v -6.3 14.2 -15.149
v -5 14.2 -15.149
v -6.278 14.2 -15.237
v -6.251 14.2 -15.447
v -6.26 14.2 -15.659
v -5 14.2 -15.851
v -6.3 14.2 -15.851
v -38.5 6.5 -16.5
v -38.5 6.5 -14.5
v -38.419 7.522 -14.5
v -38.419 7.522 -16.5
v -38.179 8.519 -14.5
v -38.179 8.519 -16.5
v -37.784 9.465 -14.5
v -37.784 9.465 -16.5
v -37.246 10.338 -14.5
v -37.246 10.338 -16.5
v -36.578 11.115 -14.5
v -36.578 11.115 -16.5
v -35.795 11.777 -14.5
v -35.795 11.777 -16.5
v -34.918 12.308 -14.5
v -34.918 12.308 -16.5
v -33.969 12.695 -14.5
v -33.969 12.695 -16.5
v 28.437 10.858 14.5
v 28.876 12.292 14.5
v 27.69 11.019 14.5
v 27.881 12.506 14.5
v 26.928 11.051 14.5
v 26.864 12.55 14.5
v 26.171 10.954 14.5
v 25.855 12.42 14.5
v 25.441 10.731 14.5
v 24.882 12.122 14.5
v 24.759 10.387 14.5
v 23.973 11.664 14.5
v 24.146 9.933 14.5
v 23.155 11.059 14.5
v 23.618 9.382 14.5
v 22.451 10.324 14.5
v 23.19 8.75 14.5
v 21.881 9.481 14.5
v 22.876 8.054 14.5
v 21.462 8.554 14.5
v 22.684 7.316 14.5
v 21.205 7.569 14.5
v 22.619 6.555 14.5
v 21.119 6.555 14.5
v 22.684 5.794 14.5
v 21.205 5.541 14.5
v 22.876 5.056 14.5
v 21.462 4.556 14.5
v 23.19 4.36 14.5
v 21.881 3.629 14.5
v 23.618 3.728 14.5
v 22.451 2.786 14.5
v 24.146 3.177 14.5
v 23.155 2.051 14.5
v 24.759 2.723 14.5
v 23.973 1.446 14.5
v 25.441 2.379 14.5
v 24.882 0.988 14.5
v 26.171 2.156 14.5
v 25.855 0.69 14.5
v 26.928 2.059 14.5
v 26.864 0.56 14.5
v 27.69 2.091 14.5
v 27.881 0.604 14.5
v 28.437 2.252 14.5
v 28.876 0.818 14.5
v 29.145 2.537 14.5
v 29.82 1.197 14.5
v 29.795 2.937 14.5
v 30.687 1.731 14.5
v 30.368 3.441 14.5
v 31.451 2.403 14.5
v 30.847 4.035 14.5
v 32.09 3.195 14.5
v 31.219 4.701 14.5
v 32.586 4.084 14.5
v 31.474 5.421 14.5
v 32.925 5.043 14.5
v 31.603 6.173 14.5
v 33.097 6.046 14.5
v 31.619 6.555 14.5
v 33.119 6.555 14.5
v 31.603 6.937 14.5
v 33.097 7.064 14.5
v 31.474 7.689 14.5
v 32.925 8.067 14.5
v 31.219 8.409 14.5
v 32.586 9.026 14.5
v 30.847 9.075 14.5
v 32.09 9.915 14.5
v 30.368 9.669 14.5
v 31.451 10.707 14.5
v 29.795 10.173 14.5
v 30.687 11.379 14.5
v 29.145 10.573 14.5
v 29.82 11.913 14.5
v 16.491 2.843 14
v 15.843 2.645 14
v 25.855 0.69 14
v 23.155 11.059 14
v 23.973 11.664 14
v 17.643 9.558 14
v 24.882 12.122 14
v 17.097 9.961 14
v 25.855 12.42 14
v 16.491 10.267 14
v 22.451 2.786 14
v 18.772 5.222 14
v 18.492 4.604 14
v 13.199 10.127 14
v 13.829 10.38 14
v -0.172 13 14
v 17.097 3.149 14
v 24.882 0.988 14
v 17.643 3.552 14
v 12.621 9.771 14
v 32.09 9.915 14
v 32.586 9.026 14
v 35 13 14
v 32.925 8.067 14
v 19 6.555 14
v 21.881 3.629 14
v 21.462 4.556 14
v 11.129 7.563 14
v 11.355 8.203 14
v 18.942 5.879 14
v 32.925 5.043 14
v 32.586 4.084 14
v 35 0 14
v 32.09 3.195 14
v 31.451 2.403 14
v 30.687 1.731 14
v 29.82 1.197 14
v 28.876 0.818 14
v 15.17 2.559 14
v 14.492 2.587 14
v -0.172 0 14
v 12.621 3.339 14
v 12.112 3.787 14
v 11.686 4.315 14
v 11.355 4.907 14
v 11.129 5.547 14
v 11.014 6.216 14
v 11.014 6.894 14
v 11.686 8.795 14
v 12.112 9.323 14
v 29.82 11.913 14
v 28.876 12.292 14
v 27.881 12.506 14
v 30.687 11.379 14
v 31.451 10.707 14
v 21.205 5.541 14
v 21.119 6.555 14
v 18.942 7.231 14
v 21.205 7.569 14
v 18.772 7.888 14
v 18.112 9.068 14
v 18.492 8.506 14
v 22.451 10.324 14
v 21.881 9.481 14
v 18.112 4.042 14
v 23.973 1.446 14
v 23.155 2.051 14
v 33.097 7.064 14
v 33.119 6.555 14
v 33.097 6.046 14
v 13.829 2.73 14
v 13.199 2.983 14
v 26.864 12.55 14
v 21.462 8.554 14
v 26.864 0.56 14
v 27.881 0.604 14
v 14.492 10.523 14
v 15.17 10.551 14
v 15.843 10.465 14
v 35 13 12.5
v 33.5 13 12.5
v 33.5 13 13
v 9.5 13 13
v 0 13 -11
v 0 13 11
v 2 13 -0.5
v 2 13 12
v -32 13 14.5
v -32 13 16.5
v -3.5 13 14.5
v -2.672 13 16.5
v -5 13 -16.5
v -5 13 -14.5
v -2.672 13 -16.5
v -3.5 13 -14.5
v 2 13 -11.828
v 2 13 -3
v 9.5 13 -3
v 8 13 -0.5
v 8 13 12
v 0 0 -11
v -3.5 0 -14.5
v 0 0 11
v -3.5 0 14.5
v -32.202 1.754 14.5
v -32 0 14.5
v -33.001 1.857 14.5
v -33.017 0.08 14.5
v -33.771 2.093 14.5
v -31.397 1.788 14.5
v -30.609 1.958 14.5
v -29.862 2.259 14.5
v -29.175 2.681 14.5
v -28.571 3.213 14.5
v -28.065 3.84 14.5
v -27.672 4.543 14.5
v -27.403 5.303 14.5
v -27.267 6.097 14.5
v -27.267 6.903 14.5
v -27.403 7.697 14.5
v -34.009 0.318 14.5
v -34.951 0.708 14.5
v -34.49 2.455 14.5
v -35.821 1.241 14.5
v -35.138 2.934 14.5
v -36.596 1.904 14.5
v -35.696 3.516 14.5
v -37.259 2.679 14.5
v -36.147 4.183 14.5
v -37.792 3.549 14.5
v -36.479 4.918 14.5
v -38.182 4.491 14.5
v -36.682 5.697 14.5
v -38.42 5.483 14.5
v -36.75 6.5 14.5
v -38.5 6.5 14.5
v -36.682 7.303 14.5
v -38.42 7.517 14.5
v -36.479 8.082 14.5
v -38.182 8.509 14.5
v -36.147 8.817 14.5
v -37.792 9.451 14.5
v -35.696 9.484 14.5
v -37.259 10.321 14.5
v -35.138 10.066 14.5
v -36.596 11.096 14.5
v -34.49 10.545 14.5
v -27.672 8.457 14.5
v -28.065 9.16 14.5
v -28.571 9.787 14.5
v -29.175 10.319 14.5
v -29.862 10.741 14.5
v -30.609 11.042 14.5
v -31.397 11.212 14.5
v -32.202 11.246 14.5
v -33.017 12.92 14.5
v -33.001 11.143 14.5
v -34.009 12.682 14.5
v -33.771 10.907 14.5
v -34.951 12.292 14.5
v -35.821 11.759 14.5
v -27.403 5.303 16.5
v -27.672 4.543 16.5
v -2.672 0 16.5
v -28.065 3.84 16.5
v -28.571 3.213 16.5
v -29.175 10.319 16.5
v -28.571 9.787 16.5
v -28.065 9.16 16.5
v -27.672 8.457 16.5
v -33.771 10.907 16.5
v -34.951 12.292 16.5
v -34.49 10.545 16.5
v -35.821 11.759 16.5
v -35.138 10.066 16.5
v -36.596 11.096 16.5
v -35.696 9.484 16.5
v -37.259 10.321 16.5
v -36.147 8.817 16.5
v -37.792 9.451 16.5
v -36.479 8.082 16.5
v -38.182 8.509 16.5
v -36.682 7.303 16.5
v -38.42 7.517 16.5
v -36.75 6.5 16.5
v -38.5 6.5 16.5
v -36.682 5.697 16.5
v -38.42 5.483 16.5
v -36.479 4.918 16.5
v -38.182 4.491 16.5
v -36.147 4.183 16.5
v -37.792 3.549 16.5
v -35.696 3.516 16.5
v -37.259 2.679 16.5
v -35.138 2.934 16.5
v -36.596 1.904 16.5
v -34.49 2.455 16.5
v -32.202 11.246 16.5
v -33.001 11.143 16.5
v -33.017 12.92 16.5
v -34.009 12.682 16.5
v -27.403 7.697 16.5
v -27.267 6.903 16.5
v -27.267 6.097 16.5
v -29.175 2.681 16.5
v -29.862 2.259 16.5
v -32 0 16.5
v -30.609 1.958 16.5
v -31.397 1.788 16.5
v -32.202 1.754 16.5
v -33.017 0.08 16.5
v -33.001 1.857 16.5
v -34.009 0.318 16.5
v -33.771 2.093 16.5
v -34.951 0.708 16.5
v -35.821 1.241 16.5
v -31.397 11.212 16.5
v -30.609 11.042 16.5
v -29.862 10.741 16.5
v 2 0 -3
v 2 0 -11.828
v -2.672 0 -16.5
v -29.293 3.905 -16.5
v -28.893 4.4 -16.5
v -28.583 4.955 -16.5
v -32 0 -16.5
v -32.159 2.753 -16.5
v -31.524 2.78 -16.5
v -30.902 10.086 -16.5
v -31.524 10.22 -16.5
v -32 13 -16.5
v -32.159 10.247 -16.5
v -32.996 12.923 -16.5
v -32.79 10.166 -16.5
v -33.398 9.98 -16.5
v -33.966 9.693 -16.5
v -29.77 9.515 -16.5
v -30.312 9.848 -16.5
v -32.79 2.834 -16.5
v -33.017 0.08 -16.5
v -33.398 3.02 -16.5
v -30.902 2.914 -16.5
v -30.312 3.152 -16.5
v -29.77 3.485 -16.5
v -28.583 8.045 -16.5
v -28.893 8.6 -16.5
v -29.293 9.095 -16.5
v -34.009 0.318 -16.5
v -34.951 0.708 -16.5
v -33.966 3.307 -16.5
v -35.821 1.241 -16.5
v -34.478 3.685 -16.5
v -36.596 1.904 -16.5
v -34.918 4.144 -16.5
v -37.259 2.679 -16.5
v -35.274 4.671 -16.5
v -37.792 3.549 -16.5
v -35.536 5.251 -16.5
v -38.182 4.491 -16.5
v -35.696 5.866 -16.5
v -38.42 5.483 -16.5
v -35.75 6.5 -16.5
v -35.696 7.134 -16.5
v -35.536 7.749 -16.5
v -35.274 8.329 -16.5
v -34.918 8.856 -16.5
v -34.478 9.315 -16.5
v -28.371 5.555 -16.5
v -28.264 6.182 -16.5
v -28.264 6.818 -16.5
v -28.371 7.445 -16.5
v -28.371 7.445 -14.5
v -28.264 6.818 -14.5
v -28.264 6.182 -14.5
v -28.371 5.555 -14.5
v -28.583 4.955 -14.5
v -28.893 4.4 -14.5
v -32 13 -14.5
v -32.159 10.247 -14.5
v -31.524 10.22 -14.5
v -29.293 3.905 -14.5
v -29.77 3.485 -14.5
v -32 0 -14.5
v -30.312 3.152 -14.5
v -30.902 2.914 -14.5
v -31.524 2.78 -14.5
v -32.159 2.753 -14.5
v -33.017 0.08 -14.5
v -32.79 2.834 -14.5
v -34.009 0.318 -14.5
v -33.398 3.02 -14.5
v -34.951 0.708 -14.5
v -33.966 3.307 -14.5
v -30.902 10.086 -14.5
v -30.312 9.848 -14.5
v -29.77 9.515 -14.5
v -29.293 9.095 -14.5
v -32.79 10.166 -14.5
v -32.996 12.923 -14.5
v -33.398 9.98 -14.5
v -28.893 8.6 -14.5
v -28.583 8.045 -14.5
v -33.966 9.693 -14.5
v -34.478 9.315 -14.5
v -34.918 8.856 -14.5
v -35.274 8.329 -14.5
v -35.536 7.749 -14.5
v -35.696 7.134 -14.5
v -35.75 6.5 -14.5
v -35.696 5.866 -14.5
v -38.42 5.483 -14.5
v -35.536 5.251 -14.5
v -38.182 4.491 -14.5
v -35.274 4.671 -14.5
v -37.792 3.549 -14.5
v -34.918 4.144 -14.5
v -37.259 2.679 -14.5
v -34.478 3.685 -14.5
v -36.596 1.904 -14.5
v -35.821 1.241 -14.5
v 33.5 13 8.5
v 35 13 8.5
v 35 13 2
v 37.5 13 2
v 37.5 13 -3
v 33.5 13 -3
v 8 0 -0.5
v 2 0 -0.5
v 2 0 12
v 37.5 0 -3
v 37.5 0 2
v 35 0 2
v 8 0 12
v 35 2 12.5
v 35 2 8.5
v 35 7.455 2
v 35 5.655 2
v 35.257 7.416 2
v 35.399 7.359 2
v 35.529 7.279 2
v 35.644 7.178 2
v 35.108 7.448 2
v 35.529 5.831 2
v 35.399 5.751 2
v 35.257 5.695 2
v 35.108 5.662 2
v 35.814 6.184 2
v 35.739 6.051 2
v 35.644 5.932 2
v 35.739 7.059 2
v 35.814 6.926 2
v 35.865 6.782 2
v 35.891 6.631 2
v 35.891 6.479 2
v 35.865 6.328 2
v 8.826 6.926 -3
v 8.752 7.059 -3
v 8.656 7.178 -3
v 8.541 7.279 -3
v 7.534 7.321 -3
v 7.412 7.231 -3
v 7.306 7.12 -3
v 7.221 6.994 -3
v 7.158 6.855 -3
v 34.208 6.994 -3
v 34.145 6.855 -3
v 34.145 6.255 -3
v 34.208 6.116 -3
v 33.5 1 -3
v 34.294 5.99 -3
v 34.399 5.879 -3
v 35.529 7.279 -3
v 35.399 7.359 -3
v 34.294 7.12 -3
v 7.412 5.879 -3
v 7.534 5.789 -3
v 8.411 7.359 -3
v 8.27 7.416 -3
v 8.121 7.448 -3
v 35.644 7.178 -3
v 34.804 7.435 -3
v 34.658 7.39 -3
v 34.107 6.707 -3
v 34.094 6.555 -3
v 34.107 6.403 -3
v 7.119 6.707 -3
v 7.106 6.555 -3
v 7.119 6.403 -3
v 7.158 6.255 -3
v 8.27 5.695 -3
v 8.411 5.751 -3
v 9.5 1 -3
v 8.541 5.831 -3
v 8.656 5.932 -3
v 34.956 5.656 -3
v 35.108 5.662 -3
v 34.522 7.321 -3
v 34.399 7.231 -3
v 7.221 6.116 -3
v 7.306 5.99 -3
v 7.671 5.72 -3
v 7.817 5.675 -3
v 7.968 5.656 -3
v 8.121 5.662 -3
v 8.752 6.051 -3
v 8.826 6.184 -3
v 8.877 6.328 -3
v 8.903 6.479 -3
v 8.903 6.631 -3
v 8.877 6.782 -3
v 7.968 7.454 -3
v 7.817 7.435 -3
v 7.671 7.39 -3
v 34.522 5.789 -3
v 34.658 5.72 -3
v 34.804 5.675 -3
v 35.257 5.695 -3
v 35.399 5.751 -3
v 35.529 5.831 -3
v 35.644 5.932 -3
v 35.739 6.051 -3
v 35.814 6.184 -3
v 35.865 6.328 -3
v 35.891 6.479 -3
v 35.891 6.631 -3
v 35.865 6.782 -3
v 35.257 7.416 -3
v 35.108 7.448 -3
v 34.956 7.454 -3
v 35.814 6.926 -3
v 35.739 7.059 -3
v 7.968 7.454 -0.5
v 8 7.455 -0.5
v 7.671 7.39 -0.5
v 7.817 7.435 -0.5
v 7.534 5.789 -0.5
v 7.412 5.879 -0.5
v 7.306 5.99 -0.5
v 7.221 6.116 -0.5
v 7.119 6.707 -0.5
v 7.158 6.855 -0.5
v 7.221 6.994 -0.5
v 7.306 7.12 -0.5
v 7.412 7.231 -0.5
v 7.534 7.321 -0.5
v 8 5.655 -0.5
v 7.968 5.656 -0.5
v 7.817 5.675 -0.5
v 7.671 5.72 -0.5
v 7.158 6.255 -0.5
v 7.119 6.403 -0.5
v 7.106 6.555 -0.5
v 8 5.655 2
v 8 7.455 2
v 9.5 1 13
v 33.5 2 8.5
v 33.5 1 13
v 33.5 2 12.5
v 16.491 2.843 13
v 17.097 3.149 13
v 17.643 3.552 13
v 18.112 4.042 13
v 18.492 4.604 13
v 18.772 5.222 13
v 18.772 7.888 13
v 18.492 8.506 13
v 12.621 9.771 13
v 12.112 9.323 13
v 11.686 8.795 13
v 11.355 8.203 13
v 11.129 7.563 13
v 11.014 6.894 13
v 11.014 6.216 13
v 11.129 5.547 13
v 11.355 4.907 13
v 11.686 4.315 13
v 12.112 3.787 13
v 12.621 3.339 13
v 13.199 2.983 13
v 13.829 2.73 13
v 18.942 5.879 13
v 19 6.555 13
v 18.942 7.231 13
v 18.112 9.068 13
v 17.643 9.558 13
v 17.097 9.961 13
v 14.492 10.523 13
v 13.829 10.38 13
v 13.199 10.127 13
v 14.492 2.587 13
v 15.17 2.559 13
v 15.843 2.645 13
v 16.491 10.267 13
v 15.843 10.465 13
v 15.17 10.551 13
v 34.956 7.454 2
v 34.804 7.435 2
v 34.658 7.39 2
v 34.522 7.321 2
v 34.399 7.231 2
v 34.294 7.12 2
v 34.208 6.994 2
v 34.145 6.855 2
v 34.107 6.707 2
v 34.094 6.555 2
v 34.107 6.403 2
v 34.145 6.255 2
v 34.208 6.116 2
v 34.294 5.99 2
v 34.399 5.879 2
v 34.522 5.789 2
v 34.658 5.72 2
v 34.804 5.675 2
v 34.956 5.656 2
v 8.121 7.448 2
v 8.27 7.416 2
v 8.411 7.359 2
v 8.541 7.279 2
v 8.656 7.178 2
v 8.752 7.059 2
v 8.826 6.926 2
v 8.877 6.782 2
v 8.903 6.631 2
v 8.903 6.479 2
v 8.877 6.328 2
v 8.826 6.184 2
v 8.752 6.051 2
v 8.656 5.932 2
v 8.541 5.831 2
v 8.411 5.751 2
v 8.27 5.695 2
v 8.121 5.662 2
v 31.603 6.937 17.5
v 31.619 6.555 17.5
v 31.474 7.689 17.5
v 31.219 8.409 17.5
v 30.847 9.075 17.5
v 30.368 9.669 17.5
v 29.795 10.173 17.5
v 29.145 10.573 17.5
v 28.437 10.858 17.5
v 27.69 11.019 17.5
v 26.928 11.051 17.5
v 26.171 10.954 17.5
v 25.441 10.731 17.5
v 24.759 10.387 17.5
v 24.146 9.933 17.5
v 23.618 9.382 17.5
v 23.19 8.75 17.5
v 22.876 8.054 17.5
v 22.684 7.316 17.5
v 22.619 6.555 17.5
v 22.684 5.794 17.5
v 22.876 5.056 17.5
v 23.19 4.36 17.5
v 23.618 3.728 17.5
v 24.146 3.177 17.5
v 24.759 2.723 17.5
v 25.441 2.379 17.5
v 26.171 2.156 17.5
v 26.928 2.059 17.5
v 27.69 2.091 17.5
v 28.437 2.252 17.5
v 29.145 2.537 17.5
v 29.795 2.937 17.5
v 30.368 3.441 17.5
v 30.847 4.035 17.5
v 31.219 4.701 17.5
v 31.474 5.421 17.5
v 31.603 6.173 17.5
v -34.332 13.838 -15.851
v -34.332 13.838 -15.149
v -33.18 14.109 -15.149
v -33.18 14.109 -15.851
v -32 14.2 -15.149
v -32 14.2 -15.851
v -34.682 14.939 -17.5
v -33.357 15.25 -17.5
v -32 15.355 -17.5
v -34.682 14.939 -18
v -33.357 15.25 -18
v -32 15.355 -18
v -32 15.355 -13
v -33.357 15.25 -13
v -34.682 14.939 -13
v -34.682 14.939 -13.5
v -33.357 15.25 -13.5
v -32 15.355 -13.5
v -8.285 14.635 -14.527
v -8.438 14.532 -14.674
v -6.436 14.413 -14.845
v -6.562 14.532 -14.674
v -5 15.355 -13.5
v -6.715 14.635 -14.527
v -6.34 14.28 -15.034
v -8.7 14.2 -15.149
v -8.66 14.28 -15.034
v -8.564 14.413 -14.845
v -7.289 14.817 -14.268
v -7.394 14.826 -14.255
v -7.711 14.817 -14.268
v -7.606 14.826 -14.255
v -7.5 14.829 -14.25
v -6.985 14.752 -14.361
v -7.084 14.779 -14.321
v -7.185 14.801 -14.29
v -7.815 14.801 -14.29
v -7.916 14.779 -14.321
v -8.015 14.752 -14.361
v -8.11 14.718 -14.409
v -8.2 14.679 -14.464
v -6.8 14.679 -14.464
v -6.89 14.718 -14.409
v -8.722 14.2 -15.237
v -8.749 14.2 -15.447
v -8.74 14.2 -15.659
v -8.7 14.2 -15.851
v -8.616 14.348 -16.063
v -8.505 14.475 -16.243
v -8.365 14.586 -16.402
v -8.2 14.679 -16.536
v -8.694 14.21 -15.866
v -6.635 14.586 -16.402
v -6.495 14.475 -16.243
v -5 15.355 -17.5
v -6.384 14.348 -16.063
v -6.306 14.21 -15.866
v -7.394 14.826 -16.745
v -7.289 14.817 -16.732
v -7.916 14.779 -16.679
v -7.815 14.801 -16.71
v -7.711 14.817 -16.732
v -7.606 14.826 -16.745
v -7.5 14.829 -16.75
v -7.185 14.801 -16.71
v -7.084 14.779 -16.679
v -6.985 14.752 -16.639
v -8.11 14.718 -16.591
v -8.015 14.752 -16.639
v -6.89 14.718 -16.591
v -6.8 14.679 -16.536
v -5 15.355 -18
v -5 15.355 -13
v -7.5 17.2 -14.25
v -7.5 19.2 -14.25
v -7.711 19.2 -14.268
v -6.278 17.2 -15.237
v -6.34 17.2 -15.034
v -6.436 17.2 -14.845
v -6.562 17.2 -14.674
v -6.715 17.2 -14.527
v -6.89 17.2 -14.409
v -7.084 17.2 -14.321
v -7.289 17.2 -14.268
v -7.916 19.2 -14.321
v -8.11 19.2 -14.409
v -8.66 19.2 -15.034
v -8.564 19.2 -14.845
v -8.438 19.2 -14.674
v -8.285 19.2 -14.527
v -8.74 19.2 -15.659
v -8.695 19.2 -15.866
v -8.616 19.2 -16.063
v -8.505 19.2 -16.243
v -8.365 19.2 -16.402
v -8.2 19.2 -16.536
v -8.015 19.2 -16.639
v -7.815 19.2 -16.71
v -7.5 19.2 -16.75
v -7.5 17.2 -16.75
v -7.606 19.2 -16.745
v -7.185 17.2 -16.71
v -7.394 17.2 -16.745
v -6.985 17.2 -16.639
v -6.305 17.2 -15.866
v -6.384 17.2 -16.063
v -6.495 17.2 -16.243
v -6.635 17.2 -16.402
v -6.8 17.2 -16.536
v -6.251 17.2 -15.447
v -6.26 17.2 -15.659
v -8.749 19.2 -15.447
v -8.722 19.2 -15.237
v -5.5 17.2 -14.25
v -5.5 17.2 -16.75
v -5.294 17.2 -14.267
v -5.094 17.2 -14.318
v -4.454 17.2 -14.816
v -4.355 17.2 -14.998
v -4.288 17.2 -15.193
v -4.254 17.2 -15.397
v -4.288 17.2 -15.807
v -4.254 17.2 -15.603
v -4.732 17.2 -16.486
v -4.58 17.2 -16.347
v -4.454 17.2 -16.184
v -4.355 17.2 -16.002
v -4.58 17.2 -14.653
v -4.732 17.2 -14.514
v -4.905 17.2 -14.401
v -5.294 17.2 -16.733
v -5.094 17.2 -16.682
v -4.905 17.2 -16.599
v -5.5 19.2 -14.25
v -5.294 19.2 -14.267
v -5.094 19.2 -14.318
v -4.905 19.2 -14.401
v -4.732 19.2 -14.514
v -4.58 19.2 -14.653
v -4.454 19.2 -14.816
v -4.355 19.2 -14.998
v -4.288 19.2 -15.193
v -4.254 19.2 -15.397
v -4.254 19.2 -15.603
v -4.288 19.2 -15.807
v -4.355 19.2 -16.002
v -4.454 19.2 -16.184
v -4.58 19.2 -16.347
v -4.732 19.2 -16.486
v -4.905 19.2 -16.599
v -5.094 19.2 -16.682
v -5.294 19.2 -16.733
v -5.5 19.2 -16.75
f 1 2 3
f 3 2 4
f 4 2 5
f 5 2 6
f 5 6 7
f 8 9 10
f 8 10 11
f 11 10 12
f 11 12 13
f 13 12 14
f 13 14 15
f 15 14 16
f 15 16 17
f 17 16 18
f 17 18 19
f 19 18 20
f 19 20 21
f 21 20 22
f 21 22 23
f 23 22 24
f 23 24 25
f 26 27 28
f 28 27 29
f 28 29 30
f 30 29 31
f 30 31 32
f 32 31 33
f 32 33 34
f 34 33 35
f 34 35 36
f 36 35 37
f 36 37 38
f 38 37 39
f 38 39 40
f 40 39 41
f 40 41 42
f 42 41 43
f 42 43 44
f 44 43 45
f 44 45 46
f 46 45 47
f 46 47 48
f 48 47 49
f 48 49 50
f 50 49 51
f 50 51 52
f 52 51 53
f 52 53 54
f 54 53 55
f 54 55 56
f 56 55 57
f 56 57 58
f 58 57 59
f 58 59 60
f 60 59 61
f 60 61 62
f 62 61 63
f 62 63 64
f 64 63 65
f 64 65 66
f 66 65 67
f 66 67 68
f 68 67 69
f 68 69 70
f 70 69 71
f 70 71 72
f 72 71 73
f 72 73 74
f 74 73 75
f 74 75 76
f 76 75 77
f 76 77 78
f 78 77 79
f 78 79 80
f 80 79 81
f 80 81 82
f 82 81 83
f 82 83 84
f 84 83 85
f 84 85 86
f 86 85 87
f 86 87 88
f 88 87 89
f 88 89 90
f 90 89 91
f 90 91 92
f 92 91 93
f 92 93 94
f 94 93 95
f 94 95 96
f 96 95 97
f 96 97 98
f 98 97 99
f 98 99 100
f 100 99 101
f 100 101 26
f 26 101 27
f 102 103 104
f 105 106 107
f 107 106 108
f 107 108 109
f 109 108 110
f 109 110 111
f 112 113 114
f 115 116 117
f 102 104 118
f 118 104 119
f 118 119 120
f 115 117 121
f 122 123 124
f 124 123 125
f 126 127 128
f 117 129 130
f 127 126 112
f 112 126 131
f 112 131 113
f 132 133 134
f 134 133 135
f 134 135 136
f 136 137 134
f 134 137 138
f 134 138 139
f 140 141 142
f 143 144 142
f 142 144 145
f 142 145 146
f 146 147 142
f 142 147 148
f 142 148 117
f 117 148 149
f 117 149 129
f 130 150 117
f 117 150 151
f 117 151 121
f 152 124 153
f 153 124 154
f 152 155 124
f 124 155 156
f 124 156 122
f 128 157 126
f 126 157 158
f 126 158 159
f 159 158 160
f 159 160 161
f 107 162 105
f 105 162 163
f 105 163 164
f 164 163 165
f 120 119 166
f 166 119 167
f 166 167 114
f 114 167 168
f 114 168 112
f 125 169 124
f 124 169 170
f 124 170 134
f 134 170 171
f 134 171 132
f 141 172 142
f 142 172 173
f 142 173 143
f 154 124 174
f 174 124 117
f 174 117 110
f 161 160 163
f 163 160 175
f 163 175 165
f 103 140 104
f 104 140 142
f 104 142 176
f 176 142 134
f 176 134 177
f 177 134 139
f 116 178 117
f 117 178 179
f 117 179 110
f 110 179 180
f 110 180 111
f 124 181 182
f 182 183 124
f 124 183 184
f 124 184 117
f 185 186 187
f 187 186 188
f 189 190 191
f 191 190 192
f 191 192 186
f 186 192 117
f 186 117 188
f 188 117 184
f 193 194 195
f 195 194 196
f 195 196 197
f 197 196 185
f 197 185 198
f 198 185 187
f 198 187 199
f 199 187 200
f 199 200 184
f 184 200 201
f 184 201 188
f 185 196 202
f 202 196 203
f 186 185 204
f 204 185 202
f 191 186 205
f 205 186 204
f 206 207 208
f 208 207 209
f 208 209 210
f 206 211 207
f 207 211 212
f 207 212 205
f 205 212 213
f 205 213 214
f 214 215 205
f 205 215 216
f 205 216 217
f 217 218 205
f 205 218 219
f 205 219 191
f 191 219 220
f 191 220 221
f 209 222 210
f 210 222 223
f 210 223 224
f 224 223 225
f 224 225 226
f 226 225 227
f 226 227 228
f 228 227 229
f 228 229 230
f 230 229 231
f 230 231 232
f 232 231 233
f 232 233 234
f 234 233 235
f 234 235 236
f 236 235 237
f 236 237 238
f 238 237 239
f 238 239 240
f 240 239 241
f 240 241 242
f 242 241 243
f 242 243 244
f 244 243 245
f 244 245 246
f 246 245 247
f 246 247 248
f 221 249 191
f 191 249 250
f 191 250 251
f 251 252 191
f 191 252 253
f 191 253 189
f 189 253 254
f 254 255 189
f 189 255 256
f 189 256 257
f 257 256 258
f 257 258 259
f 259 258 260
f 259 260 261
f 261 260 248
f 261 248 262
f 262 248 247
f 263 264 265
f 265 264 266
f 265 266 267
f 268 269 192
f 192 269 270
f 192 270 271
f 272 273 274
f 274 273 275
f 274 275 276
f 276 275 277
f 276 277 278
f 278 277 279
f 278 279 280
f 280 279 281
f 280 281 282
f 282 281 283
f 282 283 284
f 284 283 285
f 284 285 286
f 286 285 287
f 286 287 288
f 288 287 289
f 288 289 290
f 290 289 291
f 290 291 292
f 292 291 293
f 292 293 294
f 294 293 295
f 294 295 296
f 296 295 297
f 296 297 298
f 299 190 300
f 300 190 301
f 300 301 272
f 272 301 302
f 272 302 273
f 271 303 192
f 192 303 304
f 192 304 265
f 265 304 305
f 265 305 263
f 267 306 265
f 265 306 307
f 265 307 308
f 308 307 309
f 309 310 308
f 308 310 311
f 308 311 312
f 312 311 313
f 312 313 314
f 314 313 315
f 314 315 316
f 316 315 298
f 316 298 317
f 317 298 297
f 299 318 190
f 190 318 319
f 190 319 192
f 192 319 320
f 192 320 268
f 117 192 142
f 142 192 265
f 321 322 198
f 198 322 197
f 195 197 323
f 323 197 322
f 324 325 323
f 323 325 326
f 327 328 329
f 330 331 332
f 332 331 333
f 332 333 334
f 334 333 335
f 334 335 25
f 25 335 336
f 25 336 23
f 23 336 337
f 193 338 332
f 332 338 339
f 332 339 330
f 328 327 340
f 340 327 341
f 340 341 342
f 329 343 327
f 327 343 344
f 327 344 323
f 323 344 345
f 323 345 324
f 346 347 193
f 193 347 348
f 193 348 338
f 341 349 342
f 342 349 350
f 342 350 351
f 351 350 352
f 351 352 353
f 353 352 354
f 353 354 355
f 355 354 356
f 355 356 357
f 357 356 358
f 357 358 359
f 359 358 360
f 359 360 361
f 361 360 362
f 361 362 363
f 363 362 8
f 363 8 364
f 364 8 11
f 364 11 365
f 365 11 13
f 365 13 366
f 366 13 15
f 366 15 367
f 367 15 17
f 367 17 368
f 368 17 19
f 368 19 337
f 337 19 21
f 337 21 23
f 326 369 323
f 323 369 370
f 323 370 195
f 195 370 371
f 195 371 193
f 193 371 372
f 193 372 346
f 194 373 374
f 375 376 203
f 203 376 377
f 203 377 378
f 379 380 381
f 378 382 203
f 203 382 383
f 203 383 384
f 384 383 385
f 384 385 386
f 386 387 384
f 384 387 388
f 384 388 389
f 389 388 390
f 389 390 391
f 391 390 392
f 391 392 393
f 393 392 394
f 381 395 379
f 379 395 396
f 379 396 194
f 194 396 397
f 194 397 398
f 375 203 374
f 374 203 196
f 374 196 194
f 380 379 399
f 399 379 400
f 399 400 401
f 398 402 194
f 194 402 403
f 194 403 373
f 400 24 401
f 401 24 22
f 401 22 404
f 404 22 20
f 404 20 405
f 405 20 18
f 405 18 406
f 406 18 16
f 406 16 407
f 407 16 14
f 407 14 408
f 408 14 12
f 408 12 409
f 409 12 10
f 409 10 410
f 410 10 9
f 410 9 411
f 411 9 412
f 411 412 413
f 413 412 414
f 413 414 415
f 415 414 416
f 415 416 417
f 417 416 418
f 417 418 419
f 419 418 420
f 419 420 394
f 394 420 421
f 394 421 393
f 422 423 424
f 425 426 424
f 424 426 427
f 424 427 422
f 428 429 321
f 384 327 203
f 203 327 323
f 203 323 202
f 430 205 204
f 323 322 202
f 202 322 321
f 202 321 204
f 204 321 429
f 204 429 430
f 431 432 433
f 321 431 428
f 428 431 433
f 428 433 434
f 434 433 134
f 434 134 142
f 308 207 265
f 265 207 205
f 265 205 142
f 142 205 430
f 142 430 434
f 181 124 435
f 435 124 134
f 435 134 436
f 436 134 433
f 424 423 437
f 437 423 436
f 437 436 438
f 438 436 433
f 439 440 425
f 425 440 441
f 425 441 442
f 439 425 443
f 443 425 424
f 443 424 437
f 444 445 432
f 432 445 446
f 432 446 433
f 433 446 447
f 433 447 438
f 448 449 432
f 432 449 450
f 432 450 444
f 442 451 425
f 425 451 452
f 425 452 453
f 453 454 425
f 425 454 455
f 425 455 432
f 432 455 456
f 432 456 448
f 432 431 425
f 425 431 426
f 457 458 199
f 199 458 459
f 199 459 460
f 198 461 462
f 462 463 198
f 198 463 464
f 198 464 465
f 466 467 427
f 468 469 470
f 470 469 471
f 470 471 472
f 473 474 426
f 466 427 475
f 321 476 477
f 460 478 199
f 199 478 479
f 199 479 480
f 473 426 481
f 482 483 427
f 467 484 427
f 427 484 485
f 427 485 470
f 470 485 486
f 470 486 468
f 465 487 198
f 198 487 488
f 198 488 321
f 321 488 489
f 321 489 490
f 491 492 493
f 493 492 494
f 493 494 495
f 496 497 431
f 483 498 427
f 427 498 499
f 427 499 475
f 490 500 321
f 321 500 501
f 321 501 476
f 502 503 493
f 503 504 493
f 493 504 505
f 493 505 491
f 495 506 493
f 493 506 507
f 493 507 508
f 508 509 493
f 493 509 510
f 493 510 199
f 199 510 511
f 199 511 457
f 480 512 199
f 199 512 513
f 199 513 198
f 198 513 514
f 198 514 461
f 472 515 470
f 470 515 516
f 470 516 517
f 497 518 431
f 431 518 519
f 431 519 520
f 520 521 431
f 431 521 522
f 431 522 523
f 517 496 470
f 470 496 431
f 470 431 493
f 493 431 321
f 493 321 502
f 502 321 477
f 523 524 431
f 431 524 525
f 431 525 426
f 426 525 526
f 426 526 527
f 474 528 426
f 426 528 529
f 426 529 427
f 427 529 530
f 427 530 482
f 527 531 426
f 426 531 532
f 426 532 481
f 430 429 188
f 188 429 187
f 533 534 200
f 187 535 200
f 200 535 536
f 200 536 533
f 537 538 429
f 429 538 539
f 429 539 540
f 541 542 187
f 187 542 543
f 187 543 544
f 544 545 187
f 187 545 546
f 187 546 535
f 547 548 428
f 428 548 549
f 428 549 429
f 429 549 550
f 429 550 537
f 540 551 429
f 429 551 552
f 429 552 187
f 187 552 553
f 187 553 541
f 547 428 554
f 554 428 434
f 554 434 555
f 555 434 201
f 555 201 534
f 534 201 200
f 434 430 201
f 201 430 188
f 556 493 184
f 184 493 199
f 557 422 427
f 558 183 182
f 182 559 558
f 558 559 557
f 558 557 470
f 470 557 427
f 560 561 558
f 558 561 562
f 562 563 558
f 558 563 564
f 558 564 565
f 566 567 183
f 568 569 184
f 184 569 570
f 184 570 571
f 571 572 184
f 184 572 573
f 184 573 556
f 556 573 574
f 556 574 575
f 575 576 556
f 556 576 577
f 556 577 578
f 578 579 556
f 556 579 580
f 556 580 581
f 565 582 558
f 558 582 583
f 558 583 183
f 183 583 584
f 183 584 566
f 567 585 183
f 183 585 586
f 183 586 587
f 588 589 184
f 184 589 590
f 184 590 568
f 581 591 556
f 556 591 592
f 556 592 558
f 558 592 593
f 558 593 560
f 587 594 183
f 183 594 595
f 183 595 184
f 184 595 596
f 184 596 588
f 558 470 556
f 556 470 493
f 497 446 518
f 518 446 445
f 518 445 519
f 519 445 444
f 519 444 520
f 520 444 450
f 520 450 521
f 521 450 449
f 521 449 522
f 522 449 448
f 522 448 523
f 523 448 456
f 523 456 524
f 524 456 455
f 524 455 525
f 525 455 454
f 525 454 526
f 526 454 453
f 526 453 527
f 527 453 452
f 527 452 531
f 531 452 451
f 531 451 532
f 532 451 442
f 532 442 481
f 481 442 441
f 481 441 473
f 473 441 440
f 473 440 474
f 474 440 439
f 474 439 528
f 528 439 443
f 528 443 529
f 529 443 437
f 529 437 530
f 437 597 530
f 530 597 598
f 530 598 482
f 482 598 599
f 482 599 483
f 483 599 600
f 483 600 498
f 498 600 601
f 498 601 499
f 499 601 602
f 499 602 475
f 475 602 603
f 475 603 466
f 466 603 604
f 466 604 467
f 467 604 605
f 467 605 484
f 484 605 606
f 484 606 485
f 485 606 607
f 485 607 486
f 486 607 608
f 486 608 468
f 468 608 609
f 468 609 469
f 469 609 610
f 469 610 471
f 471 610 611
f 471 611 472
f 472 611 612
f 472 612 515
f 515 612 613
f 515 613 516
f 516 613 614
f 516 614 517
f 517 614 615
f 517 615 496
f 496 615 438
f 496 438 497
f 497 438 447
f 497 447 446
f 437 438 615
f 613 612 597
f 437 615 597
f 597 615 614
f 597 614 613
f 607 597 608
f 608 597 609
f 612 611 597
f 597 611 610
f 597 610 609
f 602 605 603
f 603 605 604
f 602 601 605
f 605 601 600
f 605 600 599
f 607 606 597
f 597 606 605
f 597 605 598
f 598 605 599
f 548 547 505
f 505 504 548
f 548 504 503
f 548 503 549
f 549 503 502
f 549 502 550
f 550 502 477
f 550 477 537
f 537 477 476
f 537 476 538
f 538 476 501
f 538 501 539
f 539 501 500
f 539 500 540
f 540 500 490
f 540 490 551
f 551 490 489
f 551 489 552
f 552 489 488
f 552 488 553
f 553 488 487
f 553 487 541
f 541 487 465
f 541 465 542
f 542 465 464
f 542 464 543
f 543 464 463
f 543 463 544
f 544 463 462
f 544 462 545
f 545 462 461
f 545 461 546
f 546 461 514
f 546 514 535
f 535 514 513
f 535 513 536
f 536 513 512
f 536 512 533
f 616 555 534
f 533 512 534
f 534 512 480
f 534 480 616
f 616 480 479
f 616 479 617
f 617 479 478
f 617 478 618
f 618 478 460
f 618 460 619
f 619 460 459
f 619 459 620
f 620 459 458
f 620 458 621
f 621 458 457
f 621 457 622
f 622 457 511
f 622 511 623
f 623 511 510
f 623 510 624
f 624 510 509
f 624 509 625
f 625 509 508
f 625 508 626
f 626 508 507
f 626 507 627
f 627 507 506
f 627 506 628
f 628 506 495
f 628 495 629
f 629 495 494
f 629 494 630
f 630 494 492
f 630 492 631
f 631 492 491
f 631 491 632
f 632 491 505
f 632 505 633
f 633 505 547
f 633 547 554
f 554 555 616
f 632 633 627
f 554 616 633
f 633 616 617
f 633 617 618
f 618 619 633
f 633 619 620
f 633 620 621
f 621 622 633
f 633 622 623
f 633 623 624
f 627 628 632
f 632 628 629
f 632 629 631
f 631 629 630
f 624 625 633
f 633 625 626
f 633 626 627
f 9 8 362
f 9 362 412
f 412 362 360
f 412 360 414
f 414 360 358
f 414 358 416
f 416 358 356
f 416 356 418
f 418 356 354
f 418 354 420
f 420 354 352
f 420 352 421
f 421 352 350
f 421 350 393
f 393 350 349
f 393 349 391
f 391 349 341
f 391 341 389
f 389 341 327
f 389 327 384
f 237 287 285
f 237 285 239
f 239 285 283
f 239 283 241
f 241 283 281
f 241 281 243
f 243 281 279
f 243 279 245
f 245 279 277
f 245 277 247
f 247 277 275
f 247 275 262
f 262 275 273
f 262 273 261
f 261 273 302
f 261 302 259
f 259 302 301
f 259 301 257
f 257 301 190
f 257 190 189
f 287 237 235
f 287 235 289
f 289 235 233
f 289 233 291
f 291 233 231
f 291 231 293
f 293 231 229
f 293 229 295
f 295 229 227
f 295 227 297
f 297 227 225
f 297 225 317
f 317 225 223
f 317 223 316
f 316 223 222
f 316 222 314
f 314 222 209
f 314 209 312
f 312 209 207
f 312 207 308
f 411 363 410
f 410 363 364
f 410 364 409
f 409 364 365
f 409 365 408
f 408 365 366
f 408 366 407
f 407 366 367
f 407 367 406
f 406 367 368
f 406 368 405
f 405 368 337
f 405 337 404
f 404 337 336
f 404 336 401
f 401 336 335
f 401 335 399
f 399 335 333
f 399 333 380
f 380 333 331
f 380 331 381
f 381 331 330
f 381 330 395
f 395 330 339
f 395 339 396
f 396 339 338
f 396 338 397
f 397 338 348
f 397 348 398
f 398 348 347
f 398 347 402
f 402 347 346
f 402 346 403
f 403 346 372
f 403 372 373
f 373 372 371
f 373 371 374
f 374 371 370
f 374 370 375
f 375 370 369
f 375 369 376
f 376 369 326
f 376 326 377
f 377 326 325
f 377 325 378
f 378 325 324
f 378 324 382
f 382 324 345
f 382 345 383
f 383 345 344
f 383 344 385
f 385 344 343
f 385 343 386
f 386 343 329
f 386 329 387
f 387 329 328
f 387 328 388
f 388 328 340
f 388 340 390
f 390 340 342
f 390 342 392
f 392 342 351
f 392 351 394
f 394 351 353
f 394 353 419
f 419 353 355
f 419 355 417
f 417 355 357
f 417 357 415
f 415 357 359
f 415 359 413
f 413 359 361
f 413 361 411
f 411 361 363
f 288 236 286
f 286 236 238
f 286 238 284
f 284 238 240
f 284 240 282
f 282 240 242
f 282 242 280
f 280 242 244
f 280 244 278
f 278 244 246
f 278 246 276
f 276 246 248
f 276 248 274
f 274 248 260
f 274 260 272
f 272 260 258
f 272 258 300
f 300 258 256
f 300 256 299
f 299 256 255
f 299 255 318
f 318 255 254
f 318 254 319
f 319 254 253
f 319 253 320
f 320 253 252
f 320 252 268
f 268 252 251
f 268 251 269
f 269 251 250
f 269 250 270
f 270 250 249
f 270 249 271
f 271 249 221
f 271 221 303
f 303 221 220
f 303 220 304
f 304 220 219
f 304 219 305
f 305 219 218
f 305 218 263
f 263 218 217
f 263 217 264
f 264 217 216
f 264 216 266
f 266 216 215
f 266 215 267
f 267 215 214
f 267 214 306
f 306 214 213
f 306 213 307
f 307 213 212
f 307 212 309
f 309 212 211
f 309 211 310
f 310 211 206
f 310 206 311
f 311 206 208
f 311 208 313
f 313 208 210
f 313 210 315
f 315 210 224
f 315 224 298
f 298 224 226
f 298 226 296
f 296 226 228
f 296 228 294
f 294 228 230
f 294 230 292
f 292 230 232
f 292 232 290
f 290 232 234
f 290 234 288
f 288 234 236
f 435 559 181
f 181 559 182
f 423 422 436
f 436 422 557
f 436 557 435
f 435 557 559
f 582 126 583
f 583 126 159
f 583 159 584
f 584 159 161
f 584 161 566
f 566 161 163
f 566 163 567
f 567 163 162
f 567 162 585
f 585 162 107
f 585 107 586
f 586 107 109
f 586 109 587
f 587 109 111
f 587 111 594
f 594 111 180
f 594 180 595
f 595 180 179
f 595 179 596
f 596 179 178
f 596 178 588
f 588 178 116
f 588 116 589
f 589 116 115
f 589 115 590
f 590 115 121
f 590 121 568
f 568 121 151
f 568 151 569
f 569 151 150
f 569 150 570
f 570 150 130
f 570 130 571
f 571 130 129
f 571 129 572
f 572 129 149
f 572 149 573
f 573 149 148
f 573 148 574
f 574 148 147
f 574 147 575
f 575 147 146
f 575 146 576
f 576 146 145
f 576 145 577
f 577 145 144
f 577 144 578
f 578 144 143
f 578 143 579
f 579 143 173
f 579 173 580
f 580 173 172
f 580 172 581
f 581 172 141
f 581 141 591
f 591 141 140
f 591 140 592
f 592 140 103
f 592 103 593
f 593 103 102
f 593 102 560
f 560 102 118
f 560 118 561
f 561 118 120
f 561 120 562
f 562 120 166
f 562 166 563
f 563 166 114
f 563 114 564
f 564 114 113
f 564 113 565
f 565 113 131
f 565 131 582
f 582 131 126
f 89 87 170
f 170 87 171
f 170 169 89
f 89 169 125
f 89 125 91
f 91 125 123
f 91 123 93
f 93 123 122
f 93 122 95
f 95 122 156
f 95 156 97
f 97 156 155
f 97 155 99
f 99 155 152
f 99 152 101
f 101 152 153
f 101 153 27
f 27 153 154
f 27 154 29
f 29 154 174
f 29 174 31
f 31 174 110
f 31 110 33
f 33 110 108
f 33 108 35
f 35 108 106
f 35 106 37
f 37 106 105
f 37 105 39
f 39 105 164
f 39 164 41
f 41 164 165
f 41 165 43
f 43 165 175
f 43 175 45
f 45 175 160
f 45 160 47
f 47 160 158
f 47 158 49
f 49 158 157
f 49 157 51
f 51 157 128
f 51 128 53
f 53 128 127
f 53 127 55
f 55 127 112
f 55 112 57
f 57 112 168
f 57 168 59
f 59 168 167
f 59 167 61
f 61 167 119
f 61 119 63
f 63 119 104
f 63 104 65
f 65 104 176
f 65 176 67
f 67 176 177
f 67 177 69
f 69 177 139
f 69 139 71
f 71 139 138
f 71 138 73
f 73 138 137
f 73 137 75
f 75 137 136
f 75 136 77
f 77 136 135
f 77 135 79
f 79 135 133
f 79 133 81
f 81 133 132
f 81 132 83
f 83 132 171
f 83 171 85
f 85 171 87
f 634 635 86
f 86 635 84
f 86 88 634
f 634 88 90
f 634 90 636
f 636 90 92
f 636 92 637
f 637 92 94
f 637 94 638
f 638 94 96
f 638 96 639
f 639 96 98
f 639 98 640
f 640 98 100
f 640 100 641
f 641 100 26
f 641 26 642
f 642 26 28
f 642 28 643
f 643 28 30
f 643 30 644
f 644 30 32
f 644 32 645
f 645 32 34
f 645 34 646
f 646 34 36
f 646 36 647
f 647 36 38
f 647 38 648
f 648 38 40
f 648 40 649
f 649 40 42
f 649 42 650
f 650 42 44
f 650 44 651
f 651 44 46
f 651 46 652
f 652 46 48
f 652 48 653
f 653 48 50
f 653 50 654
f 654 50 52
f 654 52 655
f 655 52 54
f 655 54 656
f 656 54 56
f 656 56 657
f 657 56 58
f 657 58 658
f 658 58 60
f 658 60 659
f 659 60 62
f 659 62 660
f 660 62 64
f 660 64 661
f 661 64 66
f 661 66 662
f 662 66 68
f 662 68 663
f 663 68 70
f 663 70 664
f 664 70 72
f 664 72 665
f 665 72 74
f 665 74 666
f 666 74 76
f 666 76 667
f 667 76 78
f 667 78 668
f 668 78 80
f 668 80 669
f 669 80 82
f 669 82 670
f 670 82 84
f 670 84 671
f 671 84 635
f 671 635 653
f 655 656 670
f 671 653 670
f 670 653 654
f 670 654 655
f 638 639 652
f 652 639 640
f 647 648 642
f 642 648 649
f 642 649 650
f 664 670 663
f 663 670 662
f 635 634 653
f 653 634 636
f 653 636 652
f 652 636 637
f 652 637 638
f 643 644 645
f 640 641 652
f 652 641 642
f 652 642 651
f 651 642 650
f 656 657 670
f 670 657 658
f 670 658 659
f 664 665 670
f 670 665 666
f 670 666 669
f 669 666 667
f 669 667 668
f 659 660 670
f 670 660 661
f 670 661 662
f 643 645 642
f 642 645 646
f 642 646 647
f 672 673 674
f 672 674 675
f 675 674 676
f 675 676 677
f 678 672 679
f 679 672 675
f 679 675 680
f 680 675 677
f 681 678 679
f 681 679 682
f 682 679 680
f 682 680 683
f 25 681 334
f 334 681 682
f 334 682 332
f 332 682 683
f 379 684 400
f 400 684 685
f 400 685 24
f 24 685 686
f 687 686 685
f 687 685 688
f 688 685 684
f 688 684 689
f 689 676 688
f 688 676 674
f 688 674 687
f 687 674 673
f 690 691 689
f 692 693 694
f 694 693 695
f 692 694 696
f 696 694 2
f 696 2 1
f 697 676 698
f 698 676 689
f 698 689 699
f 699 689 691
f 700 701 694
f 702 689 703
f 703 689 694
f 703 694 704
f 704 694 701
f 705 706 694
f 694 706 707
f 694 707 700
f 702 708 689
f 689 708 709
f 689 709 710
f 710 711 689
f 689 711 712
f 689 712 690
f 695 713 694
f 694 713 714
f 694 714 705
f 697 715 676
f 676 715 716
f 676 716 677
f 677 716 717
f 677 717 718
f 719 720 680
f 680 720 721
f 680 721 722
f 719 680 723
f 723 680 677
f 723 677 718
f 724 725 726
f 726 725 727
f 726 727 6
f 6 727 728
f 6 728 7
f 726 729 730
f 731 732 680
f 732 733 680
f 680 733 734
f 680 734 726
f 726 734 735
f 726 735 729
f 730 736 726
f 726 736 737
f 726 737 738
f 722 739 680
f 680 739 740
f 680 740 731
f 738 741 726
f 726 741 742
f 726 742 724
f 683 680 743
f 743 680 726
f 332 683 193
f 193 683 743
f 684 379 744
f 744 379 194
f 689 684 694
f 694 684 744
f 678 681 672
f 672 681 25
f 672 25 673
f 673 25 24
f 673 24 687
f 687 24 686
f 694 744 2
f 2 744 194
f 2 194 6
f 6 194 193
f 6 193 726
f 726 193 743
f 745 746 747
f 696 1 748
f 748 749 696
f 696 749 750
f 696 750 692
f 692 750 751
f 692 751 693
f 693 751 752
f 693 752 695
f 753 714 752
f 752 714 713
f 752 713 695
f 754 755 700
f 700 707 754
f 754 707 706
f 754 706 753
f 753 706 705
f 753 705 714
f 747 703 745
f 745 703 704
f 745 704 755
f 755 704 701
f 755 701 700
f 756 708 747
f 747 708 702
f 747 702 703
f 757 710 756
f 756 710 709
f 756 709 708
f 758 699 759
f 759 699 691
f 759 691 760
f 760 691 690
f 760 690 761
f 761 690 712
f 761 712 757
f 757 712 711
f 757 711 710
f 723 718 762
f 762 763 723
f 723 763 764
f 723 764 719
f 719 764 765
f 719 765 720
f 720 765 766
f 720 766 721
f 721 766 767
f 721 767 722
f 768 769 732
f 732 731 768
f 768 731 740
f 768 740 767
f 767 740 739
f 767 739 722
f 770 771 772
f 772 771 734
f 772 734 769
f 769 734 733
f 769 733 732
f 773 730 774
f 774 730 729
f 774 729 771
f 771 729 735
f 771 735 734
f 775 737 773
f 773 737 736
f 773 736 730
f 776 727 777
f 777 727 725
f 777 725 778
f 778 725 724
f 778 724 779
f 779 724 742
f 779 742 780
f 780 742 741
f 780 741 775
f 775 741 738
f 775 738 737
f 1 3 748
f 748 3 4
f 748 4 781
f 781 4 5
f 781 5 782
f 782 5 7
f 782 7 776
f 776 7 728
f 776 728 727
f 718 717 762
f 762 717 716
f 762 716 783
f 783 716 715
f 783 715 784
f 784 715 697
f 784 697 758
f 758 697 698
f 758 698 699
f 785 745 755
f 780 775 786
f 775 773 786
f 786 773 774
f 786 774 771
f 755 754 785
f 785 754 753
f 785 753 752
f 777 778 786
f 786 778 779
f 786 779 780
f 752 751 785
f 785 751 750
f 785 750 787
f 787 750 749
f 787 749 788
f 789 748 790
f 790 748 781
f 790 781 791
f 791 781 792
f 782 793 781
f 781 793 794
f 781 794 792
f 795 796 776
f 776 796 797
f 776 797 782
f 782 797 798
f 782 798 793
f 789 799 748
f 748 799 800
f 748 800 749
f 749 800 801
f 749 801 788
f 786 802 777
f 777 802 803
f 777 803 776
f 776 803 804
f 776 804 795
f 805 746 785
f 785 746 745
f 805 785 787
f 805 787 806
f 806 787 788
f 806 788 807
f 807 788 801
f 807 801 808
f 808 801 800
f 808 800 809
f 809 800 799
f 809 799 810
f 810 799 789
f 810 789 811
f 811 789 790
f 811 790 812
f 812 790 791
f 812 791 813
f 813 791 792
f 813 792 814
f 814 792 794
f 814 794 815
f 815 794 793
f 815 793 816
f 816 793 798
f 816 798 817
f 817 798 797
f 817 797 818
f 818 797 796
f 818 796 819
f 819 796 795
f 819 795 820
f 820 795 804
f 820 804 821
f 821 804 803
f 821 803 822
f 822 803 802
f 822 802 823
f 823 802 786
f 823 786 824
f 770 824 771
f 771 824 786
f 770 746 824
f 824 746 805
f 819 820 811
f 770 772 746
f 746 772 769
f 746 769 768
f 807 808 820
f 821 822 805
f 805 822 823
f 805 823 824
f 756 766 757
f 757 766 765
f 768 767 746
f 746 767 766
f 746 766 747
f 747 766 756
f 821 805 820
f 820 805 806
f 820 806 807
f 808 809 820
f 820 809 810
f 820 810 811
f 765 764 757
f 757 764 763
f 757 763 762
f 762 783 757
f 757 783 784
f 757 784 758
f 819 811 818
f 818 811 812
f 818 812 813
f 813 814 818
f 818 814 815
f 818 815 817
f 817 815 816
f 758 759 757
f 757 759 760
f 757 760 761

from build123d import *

# Parameters (mm, degrees)
P_IDAT_VYSUNUT_M1_DEPTH  = 13
P_IDAT_VYSUNUT_M2_DEPTH  = 13
SKICA3_W                 = 6
SKICA3_H                 = 12.5
ODEBRAT_VYSUNUT_M1_DEPTH = 44.857724519
SKICA4_W                 = 24
SKICA4_H                 = 16
ODEBRAT_VYSUNUT_M2_DEPTH = 12
SKICA5_R                 = 0.9
ODEBRAT_VYSUNUT_M3_DEPTH = 5
ZAOBLIT1_R               = 6.5
SKICA6_R                 = 3.75
ODEBRAT_VYSUNUT_M4_DEPTH = 5
SKICA7_R                 = 4.75
ODEBRAT_VYSUNUT_M5_DEPTH = 5
SKICA8_W                 = 4
SKICA8_H                 = 11
ODEBRAT_VYSUNUT_M6_DEPTH = 5
SKICA9_R                 = 4
ODEBRAT_VYSUNUT_M7_DEPTH = 10
SKICA10_R                = 6
P_IDAT_VYSUNUT_M3_DEPTH  = 0.5
SKICA11_R                = 4.5
P_IDAT_VYSUNUT_M4_DEPTH  = 3
P_IDAT_VYSUNUT_M5_REACH  = 49.809
P_IDAT_START             = 3
SKICA15_R                = 1.25
P_IDAT_START_2           = 2
P_IDAT_VYSUNUT_M6_DEPTH  = 2


with BuildPart() as part:
    # Skica1 → Přidat vysunutím1 (new body)
    with BuildSketch(Plane(origin=(0, 0, 0), x_dir=(1, 0, 0), z_dir=(0, 1, 0))):
        Polygon((0, -11), (0, 11), (-3.5, 14.5), (-38.5, 14.5), (-38.5, 16.5), (-2.671572875, 16.5), (2, 11.828427125), (2, -11.828427125), (-2.671572875, -16.5), (-38.5, -16.5), (-38.5, -14.5), (-3.5, -14.5), align=None)
    extrude(amount=P_IDAT_VYSUNUT_M1_DEPTH)

    # Skica2 → Přidat vysunutím2 (add)
    with BuildSketch(Plane.XZ):
        Polygon((-0.171572875, 14), (35, 14), (35, 2), (37.5, 2), (37.5, -3), (2, -3), (2, 11.828427125), align=None)
    extrude(amount=-P_IDAT_VYSUNUT_M2_DEPTH)

    # Skica3 → Odebrat vysunutím1 (cut, through all)
    with BuildSketch(Plane(origin=(0, 13, 0), x_dir=(1, 0, 0), z_dir=(0, 1, 0))):
        with Locations((5, -5.75)):
            Rectangle(SKICA3_W, SKICA3_H)
    extrude(amount=-ODEBRAT_VYSUNUT_M1_DEPTH, mode=Mode.SUBTRACT)

    # Skica4 → Odebrat vysunutím2 (cut)
    with BuildSketch(Plane(origin=(0, 13, 0), x_dir=(1, 0, 0), z_dir=(0, 1, 0))):
        with Locations((21.5, -5)):
            Rectangle(SKICA4_W, SKICA4_H)
    extrude(amount=-ODEBRAT_VYSUNUT_M2_DEPTH, mode=Mode.SUBTRACT)

    # Skica5 → Odebrat vysunutím3 (cut)
    with BuildSketch(Plane(origin=(0, 0, -3), x_dir=(-1, 0, 0), z_dir=(0, 0, -1))):
        with Locations((-34.993787626, 6.555058734)):
            Circle(SKICA5_R)
        with Locations((-8.006314188, 6.5550616)):
            Circle(SKICA5_R)
    extrude(amount=-ODEBRAT_VYSUNUT_M3_DEPTH, mode=Mode.SUBTRACT)

    # Zaoblit1
    zaoblit1_edges = [part.edges().sort_by_distance(p)[0] for p in [
        (-38.5, 0, -15.5),
        (-38.5, 13, -15.5),
        (-38.5, 0, 15.5),
        (-38.5, 13, 15.5),
    ]]
    fillet(zaoblit1_edges, radius=ZAOBLIT1_R - 0.0001)  # a hair under: the kernel refuses the full size

    # Skica6 → Odebrat vysunutím4 (cut)
    with BuildSketch(Plane(origin=(0, 0, -16.5), x_dir=(-1, 0, 0), z_dir=(0, 0, -1))):
        with Locations((32, 6.5)):
            Circle(SKICA6_R)
    extrude(amount=-ODEBRAT_VYSUNUT_M4_DEPTH, mode=Mode.SUBTRACT)

    # Skica7 → Odebrat vysunutím5 (cut)
    with BuildSketch(Plane(origin=(0, 0, 14.5), x_dir=(-1, 0, 0), z_dir=(0, 0, -1))):
        with Locations((32, 6.5)):
            Circle(SKICA7_R)
    extrude(amount=-ODEBRAT_VYSUNUT_M5_DEPTH, mode=Mode.SUBTRACT)

    # Skica8 → Odebrat vysunutím6 (cut)
    with BuildSketch(Plane(origin=(35, 0, 0), x_dir=(0, 0, -1), z_dir=(1, 0, 0))):
        with Locations((-10.5, 7.5)):
            Rectangle(SKICA8_W, SKICA8_H)
    extrude(amount=-ODEBRAT_VYSUNUT_M6_DEPTH, mode=Mode.SUBTRACT)

    # Skica9 → Odebrat vysunutím7 (cut)
    with BuildSketch(Plane.XY.offset(14)):
        with Locations((15, 6.554999832)):
            Circle(SKICA9_R)
    extrude(amount=-ODEBRAT_VYSUNUT_M7_DEPTH, mode=Mode.SUBTRACT)

    # Skica10 → Přidat vysunutím3 (add)
    with BuildSketch(Plane.XY.offset(14)):
        with Locations((27.118831388, 6.554999832)):
            Circle(SKICA10_R)
    extrude(amount=P_IDAT_VYSUNUT_M3_DEPTH)

    # Skica11 → Přidat vysunutím4 (add)
    with BuildSketch(Plane.XY.offset(14.5)):
        with Locations((27.118831388, 6.554999832)):
            Circle(SKICA11_R)
    extrude(amount=P_IDAT_VYSUNUT_M4_DEPTH)

    # Táhnout po křivce1: sweep along a path in Skica14
    with BuildLine(Plane(origin=(0, 0, -16.5), x_dir=(-1, 0, 0), z_dir=(0, 0, -1))) as t_hnout_po_k_ivce1_path:
        Line((5, 13), (32, 13))
        ThreePointArc((32, 13), (32.996059893, 12.923228525), (33.968590866, 12.694727597))
    # Skica12 → Táhnout po křivce1 (sweep)
    with BuildSketch(Plane.ZY.offset(5)):
        Polygon((-14.5, 13), (-16.5, 13), (-18, 15.354528366), (-17.5, 15.354528366), (-15.851162616, 14.2), (-15.148837384, 14.2), (-13.5, 15.354528366), (-13, 15.354528366), align=None)
    sweep(path=t_hnout_po_k_ivce1_path.line)

    # Skica15 → Přidat vysunutím5 (add, up to next)
    with BuildSketch(Plane(origin=(0, 14.2, 0), x_dir=(1, 0, 0), z_dir=(0, 1, 0)).offset(P_IDAT_START), mode=Mode.PRIVATE) as p_idat_vysunut_m5_sk1:
        with Locations(Location((-7.5, 15.5, 0), (0, 0, 270))):
            Circle(SKICA15_R)
    p_idat_vysunut_m5_tool1 = extrude(p_idat_vysunut_m5_sk1.sketch, amount=-P_IDAT_VYSUNUT_M5_REACH, mode=Mode.PRIVATE) - part.part
    add(p_idat_vysunut_m5_tool1.solids().sort_by_distance((-7.5, 17.2, -15.5))[0])

    # Skica16 → Přidat vysunutím6 (add)
    with BuildSketch(Plane(origin=(0, 17.2, 0), x_dir=(1, 0, 0), z_dir=(0, 1, 0)).offset(P_IDAT_START_2)):
        with BuildLine():
            Line((-7.5, 16.75), (-5.5, 16.75))
            ThreePointArc((-5.5, 16.75), (-4.25, 15.5), (-5.5, 14.25))
            Line((-5.5, 14.25), (-7.5, 14.25))
            ThreePointArc((-7.5, 14.25), (-8.75, 15.5), (-7.5, 16.75))
        make_face()
    extrude(amount=-P_IDAT_VYSUNUT_M6_DEPTH)


solid = part.part
